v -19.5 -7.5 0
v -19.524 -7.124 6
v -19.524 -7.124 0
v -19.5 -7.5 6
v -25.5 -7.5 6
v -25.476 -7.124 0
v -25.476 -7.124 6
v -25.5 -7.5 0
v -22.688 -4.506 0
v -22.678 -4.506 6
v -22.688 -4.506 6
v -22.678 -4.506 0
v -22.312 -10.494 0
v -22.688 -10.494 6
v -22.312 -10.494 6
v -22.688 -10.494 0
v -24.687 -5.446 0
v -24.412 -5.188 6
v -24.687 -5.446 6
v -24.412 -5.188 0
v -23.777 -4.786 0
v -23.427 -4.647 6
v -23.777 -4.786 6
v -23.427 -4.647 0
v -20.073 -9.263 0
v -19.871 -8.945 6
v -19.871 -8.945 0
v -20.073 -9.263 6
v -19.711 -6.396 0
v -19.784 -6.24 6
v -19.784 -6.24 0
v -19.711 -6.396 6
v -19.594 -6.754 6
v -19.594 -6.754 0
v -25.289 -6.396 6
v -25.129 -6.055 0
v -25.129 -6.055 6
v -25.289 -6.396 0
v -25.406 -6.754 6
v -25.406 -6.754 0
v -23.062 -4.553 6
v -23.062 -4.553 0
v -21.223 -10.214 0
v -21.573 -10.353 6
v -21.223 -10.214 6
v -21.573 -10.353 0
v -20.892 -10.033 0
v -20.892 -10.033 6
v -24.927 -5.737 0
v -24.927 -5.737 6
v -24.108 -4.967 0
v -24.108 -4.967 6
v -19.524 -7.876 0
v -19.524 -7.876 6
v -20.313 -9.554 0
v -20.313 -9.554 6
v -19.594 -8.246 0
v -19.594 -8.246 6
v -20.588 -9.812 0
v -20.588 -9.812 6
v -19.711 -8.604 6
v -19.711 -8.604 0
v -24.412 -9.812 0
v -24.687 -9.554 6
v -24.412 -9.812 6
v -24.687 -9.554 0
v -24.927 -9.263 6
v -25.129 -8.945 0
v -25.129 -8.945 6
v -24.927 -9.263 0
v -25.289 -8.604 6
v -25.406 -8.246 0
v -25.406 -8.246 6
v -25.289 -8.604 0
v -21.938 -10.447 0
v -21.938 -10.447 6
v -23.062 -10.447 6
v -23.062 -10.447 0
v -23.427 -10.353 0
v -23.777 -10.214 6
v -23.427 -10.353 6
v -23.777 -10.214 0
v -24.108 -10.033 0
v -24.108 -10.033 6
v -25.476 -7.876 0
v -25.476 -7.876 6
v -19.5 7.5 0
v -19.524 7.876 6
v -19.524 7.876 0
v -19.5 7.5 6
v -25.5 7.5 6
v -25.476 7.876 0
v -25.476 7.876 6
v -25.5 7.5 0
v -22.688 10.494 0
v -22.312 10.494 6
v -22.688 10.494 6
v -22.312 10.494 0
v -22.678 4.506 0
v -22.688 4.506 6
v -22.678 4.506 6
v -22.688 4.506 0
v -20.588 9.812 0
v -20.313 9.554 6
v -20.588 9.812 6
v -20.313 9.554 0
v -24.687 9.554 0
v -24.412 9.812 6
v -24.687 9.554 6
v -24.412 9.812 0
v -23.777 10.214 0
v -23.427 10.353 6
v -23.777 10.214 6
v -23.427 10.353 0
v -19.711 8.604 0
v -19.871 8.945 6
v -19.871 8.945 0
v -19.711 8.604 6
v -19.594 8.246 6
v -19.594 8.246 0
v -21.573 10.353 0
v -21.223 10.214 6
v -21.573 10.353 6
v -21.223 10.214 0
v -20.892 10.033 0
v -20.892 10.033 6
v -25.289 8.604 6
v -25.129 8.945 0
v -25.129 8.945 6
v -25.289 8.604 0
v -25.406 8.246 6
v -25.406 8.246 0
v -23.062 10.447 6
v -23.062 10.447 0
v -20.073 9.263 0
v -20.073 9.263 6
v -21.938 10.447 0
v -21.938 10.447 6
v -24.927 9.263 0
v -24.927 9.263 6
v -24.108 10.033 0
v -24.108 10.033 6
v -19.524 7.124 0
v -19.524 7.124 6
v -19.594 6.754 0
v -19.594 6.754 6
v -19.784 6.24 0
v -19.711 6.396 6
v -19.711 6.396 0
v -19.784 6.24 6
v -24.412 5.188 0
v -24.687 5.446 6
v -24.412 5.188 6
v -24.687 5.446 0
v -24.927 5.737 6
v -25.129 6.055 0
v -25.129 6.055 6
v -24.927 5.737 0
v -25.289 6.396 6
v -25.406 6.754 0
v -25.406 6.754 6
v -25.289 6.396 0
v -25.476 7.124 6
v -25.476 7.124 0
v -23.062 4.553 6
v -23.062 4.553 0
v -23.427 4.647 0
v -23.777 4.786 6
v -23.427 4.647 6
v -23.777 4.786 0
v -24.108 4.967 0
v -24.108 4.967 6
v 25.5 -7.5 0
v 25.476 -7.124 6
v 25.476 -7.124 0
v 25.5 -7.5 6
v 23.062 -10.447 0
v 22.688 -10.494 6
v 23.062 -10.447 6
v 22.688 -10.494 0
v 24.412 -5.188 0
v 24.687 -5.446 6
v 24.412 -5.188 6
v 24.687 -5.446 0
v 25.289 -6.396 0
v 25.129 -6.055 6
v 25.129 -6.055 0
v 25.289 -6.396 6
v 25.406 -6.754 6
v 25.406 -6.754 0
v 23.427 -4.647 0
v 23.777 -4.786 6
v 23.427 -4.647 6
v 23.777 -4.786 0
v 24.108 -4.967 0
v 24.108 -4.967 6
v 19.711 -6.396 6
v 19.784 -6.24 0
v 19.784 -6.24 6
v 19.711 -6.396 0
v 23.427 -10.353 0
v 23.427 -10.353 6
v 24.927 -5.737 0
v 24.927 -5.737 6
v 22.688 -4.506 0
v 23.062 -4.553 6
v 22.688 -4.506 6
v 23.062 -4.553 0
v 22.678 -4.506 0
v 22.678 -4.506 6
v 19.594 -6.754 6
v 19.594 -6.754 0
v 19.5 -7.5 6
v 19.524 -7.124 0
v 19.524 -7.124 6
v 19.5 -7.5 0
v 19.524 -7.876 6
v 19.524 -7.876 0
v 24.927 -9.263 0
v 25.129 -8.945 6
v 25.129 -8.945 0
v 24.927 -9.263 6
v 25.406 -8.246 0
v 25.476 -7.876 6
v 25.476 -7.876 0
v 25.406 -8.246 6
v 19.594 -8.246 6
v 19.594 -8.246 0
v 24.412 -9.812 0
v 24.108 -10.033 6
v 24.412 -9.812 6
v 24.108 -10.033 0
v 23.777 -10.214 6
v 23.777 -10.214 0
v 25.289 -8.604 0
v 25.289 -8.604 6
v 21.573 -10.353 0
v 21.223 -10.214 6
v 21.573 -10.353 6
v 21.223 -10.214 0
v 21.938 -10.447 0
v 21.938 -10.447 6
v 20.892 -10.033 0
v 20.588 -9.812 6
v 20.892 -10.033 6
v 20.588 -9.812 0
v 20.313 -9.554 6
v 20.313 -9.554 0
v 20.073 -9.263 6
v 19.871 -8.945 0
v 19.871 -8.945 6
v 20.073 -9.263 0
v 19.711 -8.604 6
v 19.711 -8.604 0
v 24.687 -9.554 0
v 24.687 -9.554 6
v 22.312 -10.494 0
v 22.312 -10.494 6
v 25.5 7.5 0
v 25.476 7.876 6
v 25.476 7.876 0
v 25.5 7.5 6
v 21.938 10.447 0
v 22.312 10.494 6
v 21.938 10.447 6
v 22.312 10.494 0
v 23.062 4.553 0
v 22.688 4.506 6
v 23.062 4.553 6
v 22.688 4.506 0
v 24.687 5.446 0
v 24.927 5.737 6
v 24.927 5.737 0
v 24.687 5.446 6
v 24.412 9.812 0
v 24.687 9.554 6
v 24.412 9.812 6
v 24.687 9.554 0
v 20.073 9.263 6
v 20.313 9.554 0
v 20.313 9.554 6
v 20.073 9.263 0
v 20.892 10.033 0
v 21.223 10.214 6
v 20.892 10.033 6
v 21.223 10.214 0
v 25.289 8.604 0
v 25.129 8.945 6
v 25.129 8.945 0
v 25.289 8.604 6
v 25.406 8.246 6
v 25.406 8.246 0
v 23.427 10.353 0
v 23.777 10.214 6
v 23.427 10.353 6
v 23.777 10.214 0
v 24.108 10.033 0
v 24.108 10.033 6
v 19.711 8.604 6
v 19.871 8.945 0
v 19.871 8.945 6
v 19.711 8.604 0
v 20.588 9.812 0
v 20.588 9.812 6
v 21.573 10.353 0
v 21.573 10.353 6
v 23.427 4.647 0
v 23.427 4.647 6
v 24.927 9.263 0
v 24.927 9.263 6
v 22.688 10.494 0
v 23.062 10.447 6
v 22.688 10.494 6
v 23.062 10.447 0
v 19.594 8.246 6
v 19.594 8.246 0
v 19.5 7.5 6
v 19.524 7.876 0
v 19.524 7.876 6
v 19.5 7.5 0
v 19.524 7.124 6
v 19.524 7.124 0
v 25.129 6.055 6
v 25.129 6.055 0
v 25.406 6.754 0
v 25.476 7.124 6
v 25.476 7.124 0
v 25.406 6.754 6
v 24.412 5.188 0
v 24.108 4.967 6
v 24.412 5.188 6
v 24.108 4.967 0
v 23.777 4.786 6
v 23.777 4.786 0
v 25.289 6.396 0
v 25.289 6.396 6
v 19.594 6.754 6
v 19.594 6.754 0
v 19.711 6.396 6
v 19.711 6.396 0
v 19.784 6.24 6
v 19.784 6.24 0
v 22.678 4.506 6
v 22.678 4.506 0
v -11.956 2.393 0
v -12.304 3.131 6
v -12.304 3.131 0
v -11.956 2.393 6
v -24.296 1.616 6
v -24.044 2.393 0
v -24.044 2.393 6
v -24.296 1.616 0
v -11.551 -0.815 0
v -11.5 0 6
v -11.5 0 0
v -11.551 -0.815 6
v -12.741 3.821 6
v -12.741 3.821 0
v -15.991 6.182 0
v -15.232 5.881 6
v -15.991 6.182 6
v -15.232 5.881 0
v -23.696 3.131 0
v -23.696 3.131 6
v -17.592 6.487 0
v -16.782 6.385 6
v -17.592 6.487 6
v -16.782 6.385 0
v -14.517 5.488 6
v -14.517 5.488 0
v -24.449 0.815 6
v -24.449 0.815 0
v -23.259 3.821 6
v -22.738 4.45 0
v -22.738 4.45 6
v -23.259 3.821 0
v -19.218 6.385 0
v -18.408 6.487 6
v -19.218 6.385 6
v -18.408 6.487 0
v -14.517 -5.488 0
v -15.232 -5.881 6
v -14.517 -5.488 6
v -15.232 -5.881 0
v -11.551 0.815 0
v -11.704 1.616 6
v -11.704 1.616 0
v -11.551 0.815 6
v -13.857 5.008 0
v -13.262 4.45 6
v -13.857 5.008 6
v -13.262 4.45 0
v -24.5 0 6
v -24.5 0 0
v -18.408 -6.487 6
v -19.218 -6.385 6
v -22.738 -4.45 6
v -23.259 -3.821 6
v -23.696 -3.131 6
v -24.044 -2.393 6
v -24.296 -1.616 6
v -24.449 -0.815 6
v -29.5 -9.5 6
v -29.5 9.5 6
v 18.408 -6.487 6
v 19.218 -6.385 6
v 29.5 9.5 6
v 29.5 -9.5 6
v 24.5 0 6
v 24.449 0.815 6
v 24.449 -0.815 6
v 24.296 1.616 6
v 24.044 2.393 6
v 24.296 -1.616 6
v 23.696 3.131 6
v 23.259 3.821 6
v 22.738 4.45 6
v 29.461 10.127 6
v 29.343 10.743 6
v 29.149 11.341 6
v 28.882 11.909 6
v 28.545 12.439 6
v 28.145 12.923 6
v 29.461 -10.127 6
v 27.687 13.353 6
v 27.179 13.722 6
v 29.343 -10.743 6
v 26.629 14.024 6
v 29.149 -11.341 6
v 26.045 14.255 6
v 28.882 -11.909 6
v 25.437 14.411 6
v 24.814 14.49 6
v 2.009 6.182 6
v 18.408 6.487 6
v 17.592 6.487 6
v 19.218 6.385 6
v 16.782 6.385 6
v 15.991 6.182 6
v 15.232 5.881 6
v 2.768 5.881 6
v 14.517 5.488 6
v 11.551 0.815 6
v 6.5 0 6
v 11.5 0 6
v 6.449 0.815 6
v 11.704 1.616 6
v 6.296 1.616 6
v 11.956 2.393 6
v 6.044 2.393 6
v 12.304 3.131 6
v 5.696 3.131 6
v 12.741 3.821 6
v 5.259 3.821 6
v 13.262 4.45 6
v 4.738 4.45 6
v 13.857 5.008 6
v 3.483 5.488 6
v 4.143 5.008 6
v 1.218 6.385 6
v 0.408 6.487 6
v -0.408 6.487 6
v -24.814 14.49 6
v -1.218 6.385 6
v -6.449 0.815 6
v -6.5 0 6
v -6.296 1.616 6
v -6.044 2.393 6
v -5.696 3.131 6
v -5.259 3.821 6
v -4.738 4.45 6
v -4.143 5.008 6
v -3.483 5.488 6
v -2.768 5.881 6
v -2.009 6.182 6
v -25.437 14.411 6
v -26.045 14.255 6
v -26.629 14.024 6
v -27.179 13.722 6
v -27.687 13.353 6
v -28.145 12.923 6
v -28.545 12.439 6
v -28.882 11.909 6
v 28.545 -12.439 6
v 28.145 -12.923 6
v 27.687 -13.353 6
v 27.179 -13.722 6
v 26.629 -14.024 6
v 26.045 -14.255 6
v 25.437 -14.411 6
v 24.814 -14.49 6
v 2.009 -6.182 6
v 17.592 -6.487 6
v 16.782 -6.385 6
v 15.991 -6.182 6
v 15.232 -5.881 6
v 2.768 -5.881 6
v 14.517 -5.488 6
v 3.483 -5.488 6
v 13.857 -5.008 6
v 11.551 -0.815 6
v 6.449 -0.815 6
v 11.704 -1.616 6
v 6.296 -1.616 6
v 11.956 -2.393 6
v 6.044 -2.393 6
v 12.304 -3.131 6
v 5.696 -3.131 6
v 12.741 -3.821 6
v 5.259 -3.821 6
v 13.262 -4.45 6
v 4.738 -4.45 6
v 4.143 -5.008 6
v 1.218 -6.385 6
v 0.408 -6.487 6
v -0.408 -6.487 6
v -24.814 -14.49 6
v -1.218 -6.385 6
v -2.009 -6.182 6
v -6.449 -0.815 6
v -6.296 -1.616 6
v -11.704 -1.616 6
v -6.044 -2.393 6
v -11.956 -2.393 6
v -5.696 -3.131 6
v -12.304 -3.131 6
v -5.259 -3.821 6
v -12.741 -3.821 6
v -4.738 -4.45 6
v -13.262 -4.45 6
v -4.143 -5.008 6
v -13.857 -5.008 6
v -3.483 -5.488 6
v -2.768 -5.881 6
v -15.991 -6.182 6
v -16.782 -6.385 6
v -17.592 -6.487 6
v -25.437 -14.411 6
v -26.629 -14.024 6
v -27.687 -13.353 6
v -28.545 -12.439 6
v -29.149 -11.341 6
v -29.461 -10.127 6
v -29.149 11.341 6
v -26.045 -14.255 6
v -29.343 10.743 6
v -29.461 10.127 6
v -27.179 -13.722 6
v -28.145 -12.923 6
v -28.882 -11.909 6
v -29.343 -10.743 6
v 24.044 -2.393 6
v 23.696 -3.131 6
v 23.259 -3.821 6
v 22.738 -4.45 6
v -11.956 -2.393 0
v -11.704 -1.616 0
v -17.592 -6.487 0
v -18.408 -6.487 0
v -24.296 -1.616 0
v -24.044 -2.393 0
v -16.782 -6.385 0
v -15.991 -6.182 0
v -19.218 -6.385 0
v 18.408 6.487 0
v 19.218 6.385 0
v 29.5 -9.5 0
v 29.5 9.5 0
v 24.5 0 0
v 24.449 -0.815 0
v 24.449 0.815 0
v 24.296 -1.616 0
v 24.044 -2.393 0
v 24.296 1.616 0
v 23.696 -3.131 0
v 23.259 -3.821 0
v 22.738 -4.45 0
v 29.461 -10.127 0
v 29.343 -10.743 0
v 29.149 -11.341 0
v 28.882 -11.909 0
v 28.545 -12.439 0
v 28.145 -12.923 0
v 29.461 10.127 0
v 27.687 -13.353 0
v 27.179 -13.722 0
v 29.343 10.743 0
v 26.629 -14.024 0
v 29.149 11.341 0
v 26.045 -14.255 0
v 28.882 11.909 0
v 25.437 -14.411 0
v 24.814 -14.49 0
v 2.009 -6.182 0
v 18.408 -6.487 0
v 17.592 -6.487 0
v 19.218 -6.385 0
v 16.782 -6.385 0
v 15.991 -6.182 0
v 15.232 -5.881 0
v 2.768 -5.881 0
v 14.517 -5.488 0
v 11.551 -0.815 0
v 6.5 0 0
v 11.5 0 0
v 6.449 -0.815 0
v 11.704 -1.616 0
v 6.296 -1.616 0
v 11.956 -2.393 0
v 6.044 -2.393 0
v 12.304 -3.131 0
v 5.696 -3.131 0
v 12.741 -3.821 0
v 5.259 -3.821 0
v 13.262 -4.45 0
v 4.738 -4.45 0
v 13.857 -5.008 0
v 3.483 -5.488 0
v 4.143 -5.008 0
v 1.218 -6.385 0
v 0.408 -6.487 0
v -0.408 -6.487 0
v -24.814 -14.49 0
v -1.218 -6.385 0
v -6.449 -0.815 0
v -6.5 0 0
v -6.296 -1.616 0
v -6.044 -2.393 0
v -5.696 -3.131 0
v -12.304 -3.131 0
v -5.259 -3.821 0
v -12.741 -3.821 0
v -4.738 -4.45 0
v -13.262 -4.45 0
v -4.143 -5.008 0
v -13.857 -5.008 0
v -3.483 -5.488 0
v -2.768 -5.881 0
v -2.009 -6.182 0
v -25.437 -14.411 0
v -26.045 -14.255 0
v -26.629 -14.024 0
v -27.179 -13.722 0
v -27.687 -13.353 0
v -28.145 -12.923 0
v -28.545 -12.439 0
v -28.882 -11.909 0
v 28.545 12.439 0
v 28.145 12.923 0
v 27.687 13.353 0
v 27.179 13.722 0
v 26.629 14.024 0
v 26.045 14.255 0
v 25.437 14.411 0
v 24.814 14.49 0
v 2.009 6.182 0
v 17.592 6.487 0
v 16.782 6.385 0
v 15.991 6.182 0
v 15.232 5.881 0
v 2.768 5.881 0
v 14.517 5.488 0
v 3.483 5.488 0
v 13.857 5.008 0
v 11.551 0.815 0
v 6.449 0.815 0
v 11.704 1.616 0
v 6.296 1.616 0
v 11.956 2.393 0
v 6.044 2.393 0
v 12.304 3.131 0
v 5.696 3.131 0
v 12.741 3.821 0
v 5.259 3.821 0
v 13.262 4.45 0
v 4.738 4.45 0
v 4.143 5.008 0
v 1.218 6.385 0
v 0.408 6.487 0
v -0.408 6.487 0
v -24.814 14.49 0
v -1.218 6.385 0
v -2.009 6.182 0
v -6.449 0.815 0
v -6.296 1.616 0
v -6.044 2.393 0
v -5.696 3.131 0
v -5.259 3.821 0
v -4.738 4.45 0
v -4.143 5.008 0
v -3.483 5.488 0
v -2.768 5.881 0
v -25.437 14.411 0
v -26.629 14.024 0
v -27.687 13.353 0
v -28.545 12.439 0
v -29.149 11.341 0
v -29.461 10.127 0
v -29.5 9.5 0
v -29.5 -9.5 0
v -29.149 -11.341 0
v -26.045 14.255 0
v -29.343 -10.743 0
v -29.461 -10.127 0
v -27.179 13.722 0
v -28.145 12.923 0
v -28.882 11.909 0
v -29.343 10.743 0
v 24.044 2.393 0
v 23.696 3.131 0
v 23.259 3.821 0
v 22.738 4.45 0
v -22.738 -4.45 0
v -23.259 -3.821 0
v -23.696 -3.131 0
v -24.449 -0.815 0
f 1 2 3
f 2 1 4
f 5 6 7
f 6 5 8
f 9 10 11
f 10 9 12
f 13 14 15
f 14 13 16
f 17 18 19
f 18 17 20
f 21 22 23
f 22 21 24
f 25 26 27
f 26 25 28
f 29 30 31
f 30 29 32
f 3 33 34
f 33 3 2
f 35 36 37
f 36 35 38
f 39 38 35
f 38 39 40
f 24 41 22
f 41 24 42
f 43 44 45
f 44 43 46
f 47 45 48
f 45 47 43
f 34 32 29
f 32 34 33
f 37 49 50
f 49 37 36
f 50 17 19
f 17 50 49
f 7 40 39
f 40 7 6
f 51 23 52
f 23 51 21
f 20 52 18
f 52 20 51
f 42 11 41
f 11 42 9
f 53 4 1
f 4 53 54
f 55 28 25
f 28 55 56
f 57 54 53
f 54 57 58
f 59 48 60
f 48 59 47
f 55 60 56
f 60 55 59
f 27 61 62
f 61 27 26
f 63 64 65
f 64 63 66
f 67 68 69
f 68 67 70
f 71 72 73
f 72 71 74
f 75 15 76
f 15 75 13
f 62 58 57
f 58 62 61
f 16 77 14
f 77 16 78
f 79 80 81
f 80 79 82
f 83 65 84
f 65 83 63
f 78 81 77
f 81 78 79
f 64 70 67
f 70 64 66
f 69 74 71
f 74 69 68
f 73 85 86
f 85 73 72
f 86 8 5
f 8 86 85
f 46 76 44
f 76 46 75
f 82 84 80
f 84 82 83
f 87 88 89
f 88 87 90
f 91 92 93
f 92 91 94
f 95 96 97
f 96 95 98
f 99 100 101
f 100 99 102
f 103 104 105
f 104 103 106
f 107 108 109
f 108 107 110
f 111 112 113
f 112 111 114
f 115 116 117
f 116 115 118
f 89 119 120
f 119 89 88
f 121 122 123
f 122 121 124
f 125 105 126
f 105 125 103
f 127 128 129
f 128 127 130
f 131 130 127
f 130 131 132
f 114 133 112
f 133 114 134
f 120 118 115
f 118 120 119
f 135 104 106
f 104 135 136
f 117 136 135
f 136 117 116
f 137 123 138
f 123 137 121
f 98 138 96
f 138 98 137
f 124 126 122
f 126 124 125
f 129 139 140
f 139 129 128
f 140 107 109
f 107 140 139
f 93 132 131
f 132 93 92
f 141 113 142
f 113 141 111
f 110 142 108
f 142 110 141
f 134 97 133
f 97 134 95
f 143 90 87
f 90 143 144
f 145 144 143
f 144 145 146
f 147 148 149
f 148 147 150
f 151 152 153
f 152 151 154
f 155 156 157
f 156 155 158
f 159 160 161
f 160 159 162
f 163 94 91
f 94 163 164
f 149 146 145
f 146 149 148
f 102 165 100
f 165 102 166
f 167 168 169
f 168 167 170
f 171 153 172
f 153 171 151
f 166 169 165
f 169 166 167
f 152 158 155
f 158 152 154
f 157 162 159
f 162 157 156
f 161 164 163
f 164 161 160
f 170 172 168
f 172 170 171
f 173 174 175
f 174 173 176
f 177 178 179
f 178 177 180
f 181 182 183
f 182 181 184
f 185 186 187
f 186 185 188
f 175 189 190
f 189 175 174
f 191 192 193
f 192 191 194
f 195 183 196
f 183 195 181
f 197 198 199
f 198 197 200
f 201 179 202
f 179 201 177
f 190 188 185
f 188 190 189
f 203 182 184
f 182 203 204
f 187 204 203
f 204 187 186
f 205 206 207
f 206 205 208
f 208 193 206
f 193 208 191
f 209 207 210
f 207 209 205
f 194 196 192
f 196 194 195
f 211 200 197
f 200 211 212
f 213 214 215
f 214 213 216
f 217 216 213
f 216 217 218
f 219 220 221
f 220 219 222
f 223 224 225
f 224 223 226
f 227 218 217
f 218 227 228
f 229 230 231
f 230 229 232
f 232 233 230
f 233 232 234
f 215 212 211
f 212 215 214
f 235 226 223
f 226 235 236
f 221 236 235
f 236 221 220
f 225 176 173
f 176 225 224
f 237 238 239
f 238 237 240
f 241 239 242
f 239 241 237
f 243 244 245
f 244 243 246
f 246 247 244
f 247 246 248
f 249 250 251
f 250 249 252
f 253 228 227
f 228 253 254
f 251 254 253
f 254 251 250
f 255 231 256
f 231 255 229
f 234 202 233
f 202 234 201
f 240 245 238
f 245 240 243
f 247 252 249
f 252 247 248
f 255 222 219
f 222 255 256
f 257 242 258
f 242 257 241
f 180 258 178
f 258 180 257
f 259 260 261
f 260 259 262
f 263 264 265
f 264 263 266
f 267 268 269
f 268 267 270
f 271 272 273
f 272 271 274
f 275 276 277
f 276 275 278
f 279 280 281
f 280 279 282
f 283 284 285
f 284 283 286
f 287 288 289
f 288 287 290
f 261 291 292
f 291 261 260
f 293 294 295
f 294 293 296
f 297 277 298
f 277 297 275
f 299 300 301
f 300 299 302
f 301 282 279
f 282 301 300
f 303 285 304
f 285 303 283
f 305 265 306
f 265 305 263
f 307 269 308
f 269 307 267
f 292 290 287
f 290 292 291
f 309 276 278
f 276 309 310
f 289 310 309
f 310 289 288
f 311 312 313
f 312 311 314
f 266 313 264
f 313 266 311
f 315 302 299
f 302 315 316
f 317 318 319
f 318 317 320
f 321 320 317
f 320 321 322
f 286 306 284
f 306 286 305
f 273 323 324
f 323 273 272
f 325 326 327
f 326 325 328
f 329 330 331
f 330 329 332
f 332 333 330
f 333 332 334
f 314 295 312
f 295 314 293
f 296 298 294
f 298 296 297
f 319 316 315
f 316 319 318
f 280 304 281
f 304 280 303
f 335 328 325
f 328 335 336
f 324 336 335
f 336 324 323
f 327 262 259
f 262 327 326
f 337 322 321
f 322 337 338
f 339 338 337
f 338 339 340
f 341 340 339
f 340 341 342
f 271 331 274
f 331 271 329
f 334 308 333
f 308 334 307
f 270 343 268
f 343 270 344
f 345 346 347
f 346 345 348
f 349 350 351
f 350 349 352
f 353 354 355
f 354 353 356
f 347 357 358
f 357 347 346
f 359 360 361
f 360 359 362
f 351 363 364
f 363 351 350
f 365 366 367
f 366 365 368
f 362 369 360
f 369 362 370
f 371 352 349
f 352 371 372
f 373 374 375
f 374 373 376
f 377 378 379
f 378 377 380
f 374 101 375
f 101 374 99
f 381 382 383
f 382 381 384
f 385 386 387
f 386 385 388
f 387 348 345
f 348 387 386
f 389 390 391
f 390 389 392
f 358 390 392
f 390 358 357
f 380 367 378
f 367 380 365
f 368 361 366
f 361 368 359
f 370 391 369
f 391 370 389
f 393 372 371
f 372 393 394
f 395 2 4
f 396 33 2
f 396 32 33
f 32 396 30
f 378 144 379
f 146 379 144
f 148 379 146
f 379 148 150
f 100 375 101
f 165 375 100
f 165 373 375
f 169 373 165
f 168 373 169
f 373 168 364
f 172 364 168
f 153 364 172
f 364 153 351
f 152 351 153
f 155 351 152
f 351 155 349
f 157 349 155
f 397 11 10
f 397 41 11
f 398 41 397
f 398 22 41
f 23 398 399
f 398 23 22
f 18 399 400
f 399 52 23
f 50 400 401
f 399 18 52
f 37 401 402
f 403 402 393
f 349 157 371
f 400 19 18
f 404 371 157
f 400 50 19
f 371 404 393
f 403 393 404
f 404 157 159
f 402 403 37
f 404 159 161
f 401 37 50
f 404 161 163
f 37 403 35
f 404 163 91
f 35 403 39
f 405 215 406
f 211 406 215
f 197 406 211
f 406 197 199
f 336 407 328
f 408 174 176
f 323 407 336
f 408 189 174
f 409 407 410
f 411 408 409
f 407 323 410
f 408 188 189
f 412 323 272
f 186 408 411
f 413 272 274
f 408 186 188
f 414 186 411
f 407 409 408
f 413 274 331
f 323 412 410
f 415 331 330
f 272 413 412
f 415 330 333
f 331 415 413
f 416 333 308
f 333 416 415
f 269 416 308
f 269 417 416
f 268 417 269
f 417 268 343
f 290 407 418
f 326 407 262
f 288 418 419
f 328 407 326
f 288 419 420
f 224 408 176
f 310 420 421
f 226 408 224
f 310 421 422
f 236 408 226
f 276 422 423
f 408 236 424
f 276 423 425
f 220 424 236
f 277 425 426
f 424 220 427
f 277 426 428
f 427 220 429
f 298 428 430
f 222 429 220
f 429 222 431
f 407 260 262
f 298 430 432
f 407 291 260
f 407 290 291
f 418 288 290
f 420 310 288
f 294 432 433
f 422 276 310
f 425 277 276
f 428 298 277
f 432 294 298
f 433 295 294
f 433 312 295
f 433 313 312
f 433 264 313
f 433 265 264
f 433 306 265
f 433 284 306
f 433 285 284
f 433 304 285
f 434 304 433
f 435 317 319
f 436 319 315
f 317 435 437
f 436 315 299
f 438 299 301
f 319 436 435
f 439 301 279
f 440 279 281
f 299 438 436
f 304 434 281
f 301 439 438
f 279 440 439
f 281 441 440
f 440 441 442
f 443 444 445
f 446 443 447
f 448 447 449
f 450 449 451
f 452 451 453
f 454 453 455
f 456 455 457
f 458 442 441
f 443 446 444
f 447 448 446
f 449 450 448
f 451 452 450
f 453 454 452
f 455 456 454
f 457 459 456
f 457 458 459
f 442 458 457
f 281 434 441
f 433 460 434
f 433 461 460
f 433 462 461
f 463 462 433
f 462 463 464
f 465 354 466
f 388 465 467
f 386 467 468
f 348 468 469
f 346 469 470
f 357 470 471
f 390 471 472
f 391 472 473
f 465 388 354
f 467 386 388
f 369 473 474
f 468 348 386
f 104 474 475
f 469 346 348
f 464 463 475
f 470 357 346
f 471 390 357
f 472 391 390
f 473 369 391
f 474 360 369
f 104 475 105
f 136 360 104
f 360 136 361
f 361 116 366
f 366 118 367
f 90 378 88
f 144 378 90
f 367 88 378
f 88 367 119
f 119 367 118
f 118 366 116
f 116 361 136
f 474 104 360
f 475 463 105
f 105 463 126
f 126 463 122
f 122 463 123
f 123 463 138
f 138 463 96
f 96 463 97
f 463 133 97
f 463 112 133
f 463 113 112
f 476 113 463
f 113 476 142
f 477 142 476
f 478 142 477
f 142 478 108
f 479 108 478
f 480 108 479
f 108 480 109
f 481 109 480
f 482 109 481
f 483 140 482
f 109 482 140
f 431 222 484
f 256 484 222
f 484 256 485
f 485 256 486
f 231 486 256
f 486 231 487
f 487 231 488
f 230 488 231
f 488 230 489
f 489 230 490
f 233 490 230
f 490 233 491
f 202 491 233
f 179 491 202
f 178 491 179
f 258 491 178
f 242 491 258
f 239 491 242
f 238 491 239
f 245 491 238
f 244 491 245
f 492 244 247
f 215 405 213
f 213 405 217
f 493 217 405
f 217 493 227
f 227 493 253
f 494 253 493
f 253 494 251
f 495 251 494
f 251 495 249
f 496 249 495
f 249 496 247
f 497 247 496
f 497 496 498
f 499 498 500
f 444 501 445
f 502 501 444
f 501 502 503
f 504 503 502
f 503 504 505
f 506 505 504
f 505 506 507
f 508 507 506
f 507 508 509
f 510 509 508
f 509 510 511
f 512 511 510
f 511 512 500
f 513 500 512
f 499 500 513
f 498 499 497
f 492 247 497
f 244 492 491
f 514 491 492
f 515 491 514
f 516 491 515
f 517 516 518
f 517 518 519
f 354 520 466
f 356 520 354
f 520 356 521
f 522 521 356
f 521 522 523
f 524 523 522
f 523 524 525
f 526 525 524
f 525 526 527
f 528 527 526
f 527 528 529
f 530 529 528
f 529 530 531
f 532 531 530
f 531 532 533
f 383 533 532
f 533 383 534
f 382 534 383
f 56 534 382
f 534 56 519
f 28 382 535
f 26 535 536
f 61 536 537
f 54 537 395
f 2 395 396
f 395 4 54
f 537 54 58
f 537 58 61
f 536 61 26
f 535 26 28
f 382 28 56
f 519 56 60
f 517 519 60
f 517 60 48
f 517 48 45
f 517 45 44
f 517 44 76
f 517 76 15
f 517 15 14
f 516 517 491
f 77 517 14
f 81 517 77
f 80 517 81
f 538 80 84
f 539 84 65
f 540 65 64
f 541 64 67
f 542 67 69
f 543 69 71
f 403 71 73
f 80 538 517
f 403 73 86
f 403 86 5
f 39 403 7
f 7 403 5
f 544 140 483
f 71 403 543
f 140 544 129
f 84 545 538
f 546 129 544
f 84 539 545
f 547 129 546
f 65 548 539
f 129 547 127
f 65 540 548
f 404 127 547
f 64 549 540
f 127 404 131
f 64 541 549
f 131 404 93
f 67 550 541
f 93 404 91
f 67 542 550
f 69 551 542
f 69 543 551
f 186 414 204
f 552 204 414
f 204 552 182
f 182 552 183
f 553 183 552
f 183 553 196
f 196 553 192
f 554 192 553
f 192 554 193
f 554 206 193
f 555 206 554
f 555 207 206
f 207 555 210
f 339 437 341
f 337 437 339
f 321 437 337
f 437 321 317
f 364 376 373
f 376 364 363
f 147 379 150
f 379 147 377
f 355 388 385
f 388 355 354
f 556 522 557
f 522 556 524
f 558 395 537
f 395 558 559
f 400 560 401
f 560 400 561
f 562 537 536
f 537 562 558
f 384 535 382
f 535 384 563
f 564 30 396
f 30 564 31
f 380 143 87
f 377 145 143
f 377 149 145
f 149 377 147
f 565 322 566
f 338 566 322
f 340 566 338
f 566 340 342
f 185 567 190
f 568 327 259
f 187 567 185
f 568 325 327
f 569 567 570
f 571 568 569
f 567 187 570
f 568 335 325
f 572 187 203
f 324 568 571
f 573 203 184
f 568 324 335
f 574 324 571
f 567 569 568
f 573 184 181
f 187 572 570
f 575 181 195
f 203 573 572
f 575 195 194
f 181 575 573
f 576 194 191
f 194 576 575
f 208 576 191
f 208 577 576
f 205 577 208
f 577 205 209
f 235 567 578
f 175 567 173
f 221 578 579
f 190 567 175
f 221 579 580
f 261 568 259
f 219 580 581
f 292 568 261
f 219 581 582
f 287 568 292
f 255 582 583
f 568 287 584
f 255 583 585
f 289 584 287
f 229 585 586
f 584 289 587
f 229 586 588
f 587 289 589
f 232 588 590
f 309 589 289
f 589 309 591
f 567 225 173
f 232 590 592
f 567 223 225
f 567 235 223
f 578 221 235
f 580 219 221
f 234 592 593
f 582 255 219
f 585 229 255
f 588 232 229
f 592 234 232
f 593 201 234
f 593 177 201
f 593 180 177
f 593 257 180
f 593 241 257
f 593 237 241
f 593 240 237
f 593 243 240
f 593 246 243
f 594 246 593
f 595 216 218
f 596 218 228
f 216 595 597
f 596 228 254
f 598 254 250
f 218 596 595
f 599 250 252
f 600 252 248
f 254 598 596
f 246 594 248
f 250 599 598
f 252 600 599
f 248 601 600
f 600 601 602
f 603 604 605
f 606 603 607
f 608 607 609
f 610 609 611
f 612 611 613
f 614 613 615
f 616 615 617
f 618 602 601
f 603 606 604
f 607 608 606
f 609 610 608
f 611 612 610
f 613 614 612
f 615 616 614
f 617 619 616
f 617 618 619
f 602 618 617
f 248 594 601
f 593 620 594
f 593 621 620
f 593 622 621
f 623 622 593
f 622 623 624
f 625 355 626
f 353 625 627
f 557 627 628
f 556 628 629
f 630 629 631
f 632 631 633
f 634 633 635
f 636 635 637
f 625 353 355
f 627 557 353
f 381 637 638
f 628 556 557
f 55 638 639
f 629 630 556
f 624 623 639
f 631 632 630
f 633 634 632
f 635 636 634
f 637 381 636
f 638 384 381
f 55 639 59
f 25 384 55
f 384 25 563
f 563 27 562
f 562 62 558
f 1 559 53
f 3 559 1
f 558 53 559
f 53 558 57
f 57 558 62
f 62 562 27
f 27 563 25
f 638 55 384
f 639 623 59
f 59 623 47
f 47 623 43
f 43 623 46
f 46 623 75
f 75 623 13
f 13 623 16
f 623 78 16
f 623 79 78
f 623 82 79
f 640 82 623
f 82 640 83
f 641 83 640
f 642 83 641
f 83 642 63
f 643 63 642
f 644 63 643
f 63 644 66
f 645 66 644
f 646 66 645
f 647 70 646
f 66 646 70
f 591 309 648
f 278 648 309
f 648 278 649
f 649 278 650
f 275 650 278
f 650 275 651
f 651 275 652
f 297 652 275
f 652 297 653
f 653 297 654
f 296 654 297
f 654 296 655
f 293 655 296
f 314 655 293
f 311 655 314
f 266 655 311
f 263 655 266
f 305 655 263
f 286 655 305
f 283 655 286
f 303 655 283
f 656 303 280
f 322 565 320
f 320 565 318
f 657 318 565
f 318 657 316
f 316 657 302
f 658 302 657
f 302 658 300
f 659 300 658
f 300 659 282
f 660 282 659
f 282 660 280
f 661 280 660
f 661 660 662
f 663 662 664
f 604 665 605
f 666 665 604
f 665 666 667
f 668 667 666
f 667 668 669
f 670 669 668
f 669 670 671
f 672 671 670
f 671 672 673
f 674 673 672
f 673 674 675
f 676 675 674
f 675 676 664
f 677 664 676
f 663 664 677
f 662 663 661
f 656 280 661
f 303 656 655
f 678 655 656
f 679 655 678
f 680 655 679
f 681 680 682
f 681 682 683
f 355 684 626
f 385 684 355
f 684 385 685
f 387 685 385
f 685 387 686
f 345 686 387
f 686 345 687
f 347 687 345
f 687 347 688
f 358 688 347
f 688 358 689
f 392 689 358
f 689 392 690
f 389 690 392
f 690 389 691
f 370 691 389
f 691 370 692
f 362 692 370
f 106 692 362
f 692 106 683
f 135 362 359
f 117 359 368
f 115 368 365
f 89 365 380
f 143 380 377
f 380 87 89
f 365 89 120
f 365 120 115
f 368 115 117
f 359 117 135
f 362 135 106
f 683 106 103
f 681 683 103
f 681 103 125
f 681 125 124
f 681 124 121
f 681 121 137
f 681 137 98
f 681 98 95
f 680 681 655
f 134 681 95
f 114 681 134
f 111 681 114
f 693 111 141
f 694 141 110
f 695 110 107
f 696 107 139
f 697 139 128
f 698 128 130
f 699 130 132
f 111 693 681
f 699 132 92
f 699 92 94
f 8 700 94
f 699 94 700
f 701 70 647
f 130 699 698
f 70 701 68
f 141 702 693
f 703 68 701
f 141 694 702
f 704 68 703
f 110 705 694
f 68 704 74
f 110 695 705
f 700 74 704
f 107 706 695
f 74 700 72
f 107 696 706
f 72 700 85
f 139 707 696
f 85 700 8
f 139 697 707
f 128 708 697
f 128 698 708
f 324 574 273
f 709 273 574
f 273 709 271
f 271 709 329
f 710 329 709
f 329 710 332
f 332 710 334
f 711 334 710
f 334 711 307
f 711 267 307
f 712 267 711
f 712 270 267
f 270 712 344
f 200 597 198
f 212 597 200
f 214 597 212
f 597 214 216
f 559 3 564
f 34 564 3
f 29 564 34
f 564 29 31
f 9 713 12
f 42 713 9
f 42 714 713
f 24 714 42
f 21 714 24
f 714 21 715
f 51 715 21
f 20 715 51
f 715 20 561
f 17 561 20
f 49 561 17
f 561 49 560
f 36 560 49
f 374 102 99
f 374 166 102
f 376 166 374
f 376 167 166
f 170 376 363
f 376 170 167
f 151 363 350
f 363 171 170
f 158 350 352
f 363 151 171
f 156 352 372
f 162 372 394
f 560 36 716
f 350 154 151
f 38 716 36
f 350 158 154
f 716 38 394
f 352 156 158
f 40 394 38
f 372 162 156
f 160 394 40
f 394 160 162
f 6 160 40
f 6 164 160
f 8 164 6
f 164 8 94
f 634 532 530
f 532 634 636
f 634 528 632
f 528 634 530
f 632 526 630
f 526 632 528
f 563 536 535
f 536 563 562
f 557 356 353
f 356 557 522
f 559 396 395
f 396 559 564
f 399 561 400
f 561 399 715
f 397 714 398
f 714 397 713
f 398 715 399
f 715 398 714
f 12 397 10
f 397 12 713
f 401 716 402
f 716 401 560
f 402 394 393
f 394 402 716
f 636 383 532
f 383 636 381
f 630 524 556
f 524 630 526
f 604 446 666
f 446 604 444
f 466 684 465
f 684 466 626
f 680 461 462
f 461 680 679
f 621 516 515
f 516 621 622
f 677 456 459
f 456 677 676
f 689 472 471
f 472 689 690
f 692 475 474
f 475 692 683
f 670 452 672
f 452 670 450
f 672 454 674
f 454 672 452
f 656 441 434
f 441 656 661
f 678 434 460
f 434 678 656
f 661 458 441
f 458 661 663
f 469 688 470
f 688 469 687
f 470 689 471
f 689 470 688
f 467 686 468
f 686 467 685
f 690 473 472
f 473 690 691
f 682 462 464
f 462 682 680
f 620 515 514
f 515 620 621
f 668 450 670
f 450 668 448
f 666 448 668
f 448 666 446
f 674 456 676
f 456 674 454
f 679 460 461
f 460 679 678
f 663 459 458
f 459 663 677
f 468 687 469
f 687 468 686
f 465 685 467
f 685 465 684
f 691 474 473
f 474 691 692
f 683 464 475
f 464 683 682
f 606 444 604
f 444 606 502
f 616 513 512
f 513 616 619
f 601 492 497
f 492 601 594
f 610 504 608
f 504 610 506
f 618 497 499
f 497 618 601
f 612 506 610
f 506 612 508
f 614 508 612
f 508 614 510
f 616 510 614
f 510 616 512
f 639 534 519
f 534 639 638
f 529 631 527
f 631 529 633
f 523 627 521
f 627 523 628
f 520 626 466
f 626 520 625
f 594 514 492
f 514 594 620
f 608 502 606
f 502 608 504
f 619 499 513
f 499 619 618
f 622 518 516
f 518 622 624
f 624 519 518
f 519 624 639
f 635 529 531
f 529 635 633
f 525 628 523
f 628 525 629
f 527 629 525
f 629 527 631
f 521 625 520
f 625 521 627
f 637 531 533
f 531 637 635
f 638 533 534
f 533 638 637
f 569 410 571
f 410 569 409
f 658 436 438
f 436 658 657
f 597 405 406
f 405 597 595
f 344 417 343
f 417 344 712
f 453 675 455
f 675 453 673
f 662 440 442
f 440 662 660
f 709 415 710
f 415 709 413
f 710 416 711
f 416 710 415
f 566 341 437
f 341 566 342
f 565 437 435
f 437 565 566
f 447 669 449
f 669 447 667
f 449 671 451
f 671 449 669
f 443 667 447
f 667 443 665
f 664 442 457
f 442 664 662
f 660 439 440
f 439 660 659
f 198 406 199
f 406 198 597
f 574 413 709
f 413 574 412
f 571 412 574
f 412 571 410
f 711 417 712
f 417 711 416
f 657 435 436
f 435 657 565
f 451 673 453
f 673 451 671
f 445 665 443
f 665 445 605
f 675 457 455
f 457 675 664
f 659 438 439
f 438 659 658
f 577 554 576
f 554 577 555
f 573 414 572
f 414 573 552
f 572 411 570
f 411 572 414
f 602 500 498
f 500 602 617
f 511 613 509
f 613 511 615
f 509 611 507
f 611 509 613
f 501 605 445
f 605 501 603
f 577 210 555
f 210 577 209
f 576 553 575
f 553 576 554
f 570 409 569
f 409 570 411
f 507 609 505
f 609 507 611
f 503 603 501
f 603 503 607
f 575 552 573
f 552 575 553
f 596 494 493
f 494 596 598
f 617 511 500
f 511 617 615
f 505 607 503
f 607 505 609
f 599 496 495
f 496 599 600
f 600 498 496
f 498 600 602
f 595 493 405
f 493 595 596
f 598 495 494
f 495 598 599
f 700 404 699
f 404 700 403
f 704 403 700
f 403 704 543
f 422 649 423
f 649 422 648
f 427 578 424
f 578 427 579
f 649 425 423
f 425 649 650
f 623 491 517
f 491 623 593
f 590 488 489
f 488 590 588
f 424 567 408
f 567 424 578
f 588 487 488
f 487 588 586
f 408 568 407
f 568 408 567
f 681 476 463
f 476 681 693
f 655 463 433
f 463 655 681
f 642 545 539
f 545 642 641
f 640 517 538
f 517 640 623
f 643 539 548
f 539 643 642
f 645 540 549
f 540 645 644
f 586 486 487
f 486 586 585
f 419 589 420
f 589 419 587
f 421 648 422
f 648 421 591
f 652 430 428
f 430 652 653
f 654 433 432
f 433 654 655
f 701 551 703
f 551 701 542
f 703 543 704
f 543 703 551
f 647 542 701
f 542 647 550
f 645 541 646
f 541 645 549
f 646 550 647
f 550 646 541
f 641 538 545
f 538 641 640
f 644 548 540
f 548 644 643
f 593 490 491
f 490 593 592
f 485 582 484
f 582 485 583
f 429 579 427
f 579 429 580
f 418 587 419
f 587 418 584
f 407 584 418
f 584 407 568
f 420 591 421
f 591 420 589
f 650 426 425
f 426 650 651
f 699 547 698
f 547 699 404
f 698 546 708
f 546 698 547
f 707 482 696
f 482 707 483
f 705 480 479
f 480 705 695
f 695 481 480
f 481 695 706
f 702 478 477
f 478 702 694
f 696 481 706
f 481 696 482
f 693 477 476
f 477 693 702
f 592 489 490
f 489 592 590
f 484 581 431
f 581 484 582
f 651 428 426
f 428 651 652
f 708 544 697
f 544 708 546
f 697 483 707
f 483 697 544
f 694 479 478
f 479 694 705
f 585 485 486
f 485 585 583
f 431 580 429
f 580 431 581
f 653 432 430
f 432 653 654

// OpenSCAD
$fn = 50;


difference() {
	union() {
		hull() {
			translate(v = [-24.5000000000, 9.5000000000, 0]) {
				cylinder(h = 6, r = 5);
			}
			translate(v = [24.5000000000, 9.5000000000, 0]) {
				cylinder(h = 6, r = 5);
			}
			translate(v = [-24.5000000000, -9.5000000000, 0]) {
				cylinder(h = 6, r = 5);
			}
			translate(v = [24.5000000000, -9.5000000000, 0]) {
				cylinder(h = 6, r = 5);
			}
		}
	}
	union() {
		#translate(v = [-22.5000000000, -7.5000000000, -100.0000000000]) {
			cylinder(h = 200, r = 3.0000000000);
		}
		#translate(v = [-22.5000000000, 7.5000000000, -100.0000000000]) {
			cylinder(h = 200, r = 3.0000000000);
		}
		#translate(v = [22.5000000000, -7.5000000000, -100.0000000000]) {
			cylinder(h = 200, r = 3.0000000000);
		}
		#translate(v = [22.5000000000, 7.5000000000, -100.0000000000]) {
			cylinder(h = 200, r = 3.0000000000);
		}
		#translate(v = [-18.0000000000, 0, 0]) {
			cylinder(h = 6, r = 6.5000000000);
		}
		#cylinder(h = 6, r = 6.5000000000);
		#translate(v = [18.0000000000, 0, 0]) {
			cylinder(h = 6, r = 6.5000000000);
		}
	}
}
